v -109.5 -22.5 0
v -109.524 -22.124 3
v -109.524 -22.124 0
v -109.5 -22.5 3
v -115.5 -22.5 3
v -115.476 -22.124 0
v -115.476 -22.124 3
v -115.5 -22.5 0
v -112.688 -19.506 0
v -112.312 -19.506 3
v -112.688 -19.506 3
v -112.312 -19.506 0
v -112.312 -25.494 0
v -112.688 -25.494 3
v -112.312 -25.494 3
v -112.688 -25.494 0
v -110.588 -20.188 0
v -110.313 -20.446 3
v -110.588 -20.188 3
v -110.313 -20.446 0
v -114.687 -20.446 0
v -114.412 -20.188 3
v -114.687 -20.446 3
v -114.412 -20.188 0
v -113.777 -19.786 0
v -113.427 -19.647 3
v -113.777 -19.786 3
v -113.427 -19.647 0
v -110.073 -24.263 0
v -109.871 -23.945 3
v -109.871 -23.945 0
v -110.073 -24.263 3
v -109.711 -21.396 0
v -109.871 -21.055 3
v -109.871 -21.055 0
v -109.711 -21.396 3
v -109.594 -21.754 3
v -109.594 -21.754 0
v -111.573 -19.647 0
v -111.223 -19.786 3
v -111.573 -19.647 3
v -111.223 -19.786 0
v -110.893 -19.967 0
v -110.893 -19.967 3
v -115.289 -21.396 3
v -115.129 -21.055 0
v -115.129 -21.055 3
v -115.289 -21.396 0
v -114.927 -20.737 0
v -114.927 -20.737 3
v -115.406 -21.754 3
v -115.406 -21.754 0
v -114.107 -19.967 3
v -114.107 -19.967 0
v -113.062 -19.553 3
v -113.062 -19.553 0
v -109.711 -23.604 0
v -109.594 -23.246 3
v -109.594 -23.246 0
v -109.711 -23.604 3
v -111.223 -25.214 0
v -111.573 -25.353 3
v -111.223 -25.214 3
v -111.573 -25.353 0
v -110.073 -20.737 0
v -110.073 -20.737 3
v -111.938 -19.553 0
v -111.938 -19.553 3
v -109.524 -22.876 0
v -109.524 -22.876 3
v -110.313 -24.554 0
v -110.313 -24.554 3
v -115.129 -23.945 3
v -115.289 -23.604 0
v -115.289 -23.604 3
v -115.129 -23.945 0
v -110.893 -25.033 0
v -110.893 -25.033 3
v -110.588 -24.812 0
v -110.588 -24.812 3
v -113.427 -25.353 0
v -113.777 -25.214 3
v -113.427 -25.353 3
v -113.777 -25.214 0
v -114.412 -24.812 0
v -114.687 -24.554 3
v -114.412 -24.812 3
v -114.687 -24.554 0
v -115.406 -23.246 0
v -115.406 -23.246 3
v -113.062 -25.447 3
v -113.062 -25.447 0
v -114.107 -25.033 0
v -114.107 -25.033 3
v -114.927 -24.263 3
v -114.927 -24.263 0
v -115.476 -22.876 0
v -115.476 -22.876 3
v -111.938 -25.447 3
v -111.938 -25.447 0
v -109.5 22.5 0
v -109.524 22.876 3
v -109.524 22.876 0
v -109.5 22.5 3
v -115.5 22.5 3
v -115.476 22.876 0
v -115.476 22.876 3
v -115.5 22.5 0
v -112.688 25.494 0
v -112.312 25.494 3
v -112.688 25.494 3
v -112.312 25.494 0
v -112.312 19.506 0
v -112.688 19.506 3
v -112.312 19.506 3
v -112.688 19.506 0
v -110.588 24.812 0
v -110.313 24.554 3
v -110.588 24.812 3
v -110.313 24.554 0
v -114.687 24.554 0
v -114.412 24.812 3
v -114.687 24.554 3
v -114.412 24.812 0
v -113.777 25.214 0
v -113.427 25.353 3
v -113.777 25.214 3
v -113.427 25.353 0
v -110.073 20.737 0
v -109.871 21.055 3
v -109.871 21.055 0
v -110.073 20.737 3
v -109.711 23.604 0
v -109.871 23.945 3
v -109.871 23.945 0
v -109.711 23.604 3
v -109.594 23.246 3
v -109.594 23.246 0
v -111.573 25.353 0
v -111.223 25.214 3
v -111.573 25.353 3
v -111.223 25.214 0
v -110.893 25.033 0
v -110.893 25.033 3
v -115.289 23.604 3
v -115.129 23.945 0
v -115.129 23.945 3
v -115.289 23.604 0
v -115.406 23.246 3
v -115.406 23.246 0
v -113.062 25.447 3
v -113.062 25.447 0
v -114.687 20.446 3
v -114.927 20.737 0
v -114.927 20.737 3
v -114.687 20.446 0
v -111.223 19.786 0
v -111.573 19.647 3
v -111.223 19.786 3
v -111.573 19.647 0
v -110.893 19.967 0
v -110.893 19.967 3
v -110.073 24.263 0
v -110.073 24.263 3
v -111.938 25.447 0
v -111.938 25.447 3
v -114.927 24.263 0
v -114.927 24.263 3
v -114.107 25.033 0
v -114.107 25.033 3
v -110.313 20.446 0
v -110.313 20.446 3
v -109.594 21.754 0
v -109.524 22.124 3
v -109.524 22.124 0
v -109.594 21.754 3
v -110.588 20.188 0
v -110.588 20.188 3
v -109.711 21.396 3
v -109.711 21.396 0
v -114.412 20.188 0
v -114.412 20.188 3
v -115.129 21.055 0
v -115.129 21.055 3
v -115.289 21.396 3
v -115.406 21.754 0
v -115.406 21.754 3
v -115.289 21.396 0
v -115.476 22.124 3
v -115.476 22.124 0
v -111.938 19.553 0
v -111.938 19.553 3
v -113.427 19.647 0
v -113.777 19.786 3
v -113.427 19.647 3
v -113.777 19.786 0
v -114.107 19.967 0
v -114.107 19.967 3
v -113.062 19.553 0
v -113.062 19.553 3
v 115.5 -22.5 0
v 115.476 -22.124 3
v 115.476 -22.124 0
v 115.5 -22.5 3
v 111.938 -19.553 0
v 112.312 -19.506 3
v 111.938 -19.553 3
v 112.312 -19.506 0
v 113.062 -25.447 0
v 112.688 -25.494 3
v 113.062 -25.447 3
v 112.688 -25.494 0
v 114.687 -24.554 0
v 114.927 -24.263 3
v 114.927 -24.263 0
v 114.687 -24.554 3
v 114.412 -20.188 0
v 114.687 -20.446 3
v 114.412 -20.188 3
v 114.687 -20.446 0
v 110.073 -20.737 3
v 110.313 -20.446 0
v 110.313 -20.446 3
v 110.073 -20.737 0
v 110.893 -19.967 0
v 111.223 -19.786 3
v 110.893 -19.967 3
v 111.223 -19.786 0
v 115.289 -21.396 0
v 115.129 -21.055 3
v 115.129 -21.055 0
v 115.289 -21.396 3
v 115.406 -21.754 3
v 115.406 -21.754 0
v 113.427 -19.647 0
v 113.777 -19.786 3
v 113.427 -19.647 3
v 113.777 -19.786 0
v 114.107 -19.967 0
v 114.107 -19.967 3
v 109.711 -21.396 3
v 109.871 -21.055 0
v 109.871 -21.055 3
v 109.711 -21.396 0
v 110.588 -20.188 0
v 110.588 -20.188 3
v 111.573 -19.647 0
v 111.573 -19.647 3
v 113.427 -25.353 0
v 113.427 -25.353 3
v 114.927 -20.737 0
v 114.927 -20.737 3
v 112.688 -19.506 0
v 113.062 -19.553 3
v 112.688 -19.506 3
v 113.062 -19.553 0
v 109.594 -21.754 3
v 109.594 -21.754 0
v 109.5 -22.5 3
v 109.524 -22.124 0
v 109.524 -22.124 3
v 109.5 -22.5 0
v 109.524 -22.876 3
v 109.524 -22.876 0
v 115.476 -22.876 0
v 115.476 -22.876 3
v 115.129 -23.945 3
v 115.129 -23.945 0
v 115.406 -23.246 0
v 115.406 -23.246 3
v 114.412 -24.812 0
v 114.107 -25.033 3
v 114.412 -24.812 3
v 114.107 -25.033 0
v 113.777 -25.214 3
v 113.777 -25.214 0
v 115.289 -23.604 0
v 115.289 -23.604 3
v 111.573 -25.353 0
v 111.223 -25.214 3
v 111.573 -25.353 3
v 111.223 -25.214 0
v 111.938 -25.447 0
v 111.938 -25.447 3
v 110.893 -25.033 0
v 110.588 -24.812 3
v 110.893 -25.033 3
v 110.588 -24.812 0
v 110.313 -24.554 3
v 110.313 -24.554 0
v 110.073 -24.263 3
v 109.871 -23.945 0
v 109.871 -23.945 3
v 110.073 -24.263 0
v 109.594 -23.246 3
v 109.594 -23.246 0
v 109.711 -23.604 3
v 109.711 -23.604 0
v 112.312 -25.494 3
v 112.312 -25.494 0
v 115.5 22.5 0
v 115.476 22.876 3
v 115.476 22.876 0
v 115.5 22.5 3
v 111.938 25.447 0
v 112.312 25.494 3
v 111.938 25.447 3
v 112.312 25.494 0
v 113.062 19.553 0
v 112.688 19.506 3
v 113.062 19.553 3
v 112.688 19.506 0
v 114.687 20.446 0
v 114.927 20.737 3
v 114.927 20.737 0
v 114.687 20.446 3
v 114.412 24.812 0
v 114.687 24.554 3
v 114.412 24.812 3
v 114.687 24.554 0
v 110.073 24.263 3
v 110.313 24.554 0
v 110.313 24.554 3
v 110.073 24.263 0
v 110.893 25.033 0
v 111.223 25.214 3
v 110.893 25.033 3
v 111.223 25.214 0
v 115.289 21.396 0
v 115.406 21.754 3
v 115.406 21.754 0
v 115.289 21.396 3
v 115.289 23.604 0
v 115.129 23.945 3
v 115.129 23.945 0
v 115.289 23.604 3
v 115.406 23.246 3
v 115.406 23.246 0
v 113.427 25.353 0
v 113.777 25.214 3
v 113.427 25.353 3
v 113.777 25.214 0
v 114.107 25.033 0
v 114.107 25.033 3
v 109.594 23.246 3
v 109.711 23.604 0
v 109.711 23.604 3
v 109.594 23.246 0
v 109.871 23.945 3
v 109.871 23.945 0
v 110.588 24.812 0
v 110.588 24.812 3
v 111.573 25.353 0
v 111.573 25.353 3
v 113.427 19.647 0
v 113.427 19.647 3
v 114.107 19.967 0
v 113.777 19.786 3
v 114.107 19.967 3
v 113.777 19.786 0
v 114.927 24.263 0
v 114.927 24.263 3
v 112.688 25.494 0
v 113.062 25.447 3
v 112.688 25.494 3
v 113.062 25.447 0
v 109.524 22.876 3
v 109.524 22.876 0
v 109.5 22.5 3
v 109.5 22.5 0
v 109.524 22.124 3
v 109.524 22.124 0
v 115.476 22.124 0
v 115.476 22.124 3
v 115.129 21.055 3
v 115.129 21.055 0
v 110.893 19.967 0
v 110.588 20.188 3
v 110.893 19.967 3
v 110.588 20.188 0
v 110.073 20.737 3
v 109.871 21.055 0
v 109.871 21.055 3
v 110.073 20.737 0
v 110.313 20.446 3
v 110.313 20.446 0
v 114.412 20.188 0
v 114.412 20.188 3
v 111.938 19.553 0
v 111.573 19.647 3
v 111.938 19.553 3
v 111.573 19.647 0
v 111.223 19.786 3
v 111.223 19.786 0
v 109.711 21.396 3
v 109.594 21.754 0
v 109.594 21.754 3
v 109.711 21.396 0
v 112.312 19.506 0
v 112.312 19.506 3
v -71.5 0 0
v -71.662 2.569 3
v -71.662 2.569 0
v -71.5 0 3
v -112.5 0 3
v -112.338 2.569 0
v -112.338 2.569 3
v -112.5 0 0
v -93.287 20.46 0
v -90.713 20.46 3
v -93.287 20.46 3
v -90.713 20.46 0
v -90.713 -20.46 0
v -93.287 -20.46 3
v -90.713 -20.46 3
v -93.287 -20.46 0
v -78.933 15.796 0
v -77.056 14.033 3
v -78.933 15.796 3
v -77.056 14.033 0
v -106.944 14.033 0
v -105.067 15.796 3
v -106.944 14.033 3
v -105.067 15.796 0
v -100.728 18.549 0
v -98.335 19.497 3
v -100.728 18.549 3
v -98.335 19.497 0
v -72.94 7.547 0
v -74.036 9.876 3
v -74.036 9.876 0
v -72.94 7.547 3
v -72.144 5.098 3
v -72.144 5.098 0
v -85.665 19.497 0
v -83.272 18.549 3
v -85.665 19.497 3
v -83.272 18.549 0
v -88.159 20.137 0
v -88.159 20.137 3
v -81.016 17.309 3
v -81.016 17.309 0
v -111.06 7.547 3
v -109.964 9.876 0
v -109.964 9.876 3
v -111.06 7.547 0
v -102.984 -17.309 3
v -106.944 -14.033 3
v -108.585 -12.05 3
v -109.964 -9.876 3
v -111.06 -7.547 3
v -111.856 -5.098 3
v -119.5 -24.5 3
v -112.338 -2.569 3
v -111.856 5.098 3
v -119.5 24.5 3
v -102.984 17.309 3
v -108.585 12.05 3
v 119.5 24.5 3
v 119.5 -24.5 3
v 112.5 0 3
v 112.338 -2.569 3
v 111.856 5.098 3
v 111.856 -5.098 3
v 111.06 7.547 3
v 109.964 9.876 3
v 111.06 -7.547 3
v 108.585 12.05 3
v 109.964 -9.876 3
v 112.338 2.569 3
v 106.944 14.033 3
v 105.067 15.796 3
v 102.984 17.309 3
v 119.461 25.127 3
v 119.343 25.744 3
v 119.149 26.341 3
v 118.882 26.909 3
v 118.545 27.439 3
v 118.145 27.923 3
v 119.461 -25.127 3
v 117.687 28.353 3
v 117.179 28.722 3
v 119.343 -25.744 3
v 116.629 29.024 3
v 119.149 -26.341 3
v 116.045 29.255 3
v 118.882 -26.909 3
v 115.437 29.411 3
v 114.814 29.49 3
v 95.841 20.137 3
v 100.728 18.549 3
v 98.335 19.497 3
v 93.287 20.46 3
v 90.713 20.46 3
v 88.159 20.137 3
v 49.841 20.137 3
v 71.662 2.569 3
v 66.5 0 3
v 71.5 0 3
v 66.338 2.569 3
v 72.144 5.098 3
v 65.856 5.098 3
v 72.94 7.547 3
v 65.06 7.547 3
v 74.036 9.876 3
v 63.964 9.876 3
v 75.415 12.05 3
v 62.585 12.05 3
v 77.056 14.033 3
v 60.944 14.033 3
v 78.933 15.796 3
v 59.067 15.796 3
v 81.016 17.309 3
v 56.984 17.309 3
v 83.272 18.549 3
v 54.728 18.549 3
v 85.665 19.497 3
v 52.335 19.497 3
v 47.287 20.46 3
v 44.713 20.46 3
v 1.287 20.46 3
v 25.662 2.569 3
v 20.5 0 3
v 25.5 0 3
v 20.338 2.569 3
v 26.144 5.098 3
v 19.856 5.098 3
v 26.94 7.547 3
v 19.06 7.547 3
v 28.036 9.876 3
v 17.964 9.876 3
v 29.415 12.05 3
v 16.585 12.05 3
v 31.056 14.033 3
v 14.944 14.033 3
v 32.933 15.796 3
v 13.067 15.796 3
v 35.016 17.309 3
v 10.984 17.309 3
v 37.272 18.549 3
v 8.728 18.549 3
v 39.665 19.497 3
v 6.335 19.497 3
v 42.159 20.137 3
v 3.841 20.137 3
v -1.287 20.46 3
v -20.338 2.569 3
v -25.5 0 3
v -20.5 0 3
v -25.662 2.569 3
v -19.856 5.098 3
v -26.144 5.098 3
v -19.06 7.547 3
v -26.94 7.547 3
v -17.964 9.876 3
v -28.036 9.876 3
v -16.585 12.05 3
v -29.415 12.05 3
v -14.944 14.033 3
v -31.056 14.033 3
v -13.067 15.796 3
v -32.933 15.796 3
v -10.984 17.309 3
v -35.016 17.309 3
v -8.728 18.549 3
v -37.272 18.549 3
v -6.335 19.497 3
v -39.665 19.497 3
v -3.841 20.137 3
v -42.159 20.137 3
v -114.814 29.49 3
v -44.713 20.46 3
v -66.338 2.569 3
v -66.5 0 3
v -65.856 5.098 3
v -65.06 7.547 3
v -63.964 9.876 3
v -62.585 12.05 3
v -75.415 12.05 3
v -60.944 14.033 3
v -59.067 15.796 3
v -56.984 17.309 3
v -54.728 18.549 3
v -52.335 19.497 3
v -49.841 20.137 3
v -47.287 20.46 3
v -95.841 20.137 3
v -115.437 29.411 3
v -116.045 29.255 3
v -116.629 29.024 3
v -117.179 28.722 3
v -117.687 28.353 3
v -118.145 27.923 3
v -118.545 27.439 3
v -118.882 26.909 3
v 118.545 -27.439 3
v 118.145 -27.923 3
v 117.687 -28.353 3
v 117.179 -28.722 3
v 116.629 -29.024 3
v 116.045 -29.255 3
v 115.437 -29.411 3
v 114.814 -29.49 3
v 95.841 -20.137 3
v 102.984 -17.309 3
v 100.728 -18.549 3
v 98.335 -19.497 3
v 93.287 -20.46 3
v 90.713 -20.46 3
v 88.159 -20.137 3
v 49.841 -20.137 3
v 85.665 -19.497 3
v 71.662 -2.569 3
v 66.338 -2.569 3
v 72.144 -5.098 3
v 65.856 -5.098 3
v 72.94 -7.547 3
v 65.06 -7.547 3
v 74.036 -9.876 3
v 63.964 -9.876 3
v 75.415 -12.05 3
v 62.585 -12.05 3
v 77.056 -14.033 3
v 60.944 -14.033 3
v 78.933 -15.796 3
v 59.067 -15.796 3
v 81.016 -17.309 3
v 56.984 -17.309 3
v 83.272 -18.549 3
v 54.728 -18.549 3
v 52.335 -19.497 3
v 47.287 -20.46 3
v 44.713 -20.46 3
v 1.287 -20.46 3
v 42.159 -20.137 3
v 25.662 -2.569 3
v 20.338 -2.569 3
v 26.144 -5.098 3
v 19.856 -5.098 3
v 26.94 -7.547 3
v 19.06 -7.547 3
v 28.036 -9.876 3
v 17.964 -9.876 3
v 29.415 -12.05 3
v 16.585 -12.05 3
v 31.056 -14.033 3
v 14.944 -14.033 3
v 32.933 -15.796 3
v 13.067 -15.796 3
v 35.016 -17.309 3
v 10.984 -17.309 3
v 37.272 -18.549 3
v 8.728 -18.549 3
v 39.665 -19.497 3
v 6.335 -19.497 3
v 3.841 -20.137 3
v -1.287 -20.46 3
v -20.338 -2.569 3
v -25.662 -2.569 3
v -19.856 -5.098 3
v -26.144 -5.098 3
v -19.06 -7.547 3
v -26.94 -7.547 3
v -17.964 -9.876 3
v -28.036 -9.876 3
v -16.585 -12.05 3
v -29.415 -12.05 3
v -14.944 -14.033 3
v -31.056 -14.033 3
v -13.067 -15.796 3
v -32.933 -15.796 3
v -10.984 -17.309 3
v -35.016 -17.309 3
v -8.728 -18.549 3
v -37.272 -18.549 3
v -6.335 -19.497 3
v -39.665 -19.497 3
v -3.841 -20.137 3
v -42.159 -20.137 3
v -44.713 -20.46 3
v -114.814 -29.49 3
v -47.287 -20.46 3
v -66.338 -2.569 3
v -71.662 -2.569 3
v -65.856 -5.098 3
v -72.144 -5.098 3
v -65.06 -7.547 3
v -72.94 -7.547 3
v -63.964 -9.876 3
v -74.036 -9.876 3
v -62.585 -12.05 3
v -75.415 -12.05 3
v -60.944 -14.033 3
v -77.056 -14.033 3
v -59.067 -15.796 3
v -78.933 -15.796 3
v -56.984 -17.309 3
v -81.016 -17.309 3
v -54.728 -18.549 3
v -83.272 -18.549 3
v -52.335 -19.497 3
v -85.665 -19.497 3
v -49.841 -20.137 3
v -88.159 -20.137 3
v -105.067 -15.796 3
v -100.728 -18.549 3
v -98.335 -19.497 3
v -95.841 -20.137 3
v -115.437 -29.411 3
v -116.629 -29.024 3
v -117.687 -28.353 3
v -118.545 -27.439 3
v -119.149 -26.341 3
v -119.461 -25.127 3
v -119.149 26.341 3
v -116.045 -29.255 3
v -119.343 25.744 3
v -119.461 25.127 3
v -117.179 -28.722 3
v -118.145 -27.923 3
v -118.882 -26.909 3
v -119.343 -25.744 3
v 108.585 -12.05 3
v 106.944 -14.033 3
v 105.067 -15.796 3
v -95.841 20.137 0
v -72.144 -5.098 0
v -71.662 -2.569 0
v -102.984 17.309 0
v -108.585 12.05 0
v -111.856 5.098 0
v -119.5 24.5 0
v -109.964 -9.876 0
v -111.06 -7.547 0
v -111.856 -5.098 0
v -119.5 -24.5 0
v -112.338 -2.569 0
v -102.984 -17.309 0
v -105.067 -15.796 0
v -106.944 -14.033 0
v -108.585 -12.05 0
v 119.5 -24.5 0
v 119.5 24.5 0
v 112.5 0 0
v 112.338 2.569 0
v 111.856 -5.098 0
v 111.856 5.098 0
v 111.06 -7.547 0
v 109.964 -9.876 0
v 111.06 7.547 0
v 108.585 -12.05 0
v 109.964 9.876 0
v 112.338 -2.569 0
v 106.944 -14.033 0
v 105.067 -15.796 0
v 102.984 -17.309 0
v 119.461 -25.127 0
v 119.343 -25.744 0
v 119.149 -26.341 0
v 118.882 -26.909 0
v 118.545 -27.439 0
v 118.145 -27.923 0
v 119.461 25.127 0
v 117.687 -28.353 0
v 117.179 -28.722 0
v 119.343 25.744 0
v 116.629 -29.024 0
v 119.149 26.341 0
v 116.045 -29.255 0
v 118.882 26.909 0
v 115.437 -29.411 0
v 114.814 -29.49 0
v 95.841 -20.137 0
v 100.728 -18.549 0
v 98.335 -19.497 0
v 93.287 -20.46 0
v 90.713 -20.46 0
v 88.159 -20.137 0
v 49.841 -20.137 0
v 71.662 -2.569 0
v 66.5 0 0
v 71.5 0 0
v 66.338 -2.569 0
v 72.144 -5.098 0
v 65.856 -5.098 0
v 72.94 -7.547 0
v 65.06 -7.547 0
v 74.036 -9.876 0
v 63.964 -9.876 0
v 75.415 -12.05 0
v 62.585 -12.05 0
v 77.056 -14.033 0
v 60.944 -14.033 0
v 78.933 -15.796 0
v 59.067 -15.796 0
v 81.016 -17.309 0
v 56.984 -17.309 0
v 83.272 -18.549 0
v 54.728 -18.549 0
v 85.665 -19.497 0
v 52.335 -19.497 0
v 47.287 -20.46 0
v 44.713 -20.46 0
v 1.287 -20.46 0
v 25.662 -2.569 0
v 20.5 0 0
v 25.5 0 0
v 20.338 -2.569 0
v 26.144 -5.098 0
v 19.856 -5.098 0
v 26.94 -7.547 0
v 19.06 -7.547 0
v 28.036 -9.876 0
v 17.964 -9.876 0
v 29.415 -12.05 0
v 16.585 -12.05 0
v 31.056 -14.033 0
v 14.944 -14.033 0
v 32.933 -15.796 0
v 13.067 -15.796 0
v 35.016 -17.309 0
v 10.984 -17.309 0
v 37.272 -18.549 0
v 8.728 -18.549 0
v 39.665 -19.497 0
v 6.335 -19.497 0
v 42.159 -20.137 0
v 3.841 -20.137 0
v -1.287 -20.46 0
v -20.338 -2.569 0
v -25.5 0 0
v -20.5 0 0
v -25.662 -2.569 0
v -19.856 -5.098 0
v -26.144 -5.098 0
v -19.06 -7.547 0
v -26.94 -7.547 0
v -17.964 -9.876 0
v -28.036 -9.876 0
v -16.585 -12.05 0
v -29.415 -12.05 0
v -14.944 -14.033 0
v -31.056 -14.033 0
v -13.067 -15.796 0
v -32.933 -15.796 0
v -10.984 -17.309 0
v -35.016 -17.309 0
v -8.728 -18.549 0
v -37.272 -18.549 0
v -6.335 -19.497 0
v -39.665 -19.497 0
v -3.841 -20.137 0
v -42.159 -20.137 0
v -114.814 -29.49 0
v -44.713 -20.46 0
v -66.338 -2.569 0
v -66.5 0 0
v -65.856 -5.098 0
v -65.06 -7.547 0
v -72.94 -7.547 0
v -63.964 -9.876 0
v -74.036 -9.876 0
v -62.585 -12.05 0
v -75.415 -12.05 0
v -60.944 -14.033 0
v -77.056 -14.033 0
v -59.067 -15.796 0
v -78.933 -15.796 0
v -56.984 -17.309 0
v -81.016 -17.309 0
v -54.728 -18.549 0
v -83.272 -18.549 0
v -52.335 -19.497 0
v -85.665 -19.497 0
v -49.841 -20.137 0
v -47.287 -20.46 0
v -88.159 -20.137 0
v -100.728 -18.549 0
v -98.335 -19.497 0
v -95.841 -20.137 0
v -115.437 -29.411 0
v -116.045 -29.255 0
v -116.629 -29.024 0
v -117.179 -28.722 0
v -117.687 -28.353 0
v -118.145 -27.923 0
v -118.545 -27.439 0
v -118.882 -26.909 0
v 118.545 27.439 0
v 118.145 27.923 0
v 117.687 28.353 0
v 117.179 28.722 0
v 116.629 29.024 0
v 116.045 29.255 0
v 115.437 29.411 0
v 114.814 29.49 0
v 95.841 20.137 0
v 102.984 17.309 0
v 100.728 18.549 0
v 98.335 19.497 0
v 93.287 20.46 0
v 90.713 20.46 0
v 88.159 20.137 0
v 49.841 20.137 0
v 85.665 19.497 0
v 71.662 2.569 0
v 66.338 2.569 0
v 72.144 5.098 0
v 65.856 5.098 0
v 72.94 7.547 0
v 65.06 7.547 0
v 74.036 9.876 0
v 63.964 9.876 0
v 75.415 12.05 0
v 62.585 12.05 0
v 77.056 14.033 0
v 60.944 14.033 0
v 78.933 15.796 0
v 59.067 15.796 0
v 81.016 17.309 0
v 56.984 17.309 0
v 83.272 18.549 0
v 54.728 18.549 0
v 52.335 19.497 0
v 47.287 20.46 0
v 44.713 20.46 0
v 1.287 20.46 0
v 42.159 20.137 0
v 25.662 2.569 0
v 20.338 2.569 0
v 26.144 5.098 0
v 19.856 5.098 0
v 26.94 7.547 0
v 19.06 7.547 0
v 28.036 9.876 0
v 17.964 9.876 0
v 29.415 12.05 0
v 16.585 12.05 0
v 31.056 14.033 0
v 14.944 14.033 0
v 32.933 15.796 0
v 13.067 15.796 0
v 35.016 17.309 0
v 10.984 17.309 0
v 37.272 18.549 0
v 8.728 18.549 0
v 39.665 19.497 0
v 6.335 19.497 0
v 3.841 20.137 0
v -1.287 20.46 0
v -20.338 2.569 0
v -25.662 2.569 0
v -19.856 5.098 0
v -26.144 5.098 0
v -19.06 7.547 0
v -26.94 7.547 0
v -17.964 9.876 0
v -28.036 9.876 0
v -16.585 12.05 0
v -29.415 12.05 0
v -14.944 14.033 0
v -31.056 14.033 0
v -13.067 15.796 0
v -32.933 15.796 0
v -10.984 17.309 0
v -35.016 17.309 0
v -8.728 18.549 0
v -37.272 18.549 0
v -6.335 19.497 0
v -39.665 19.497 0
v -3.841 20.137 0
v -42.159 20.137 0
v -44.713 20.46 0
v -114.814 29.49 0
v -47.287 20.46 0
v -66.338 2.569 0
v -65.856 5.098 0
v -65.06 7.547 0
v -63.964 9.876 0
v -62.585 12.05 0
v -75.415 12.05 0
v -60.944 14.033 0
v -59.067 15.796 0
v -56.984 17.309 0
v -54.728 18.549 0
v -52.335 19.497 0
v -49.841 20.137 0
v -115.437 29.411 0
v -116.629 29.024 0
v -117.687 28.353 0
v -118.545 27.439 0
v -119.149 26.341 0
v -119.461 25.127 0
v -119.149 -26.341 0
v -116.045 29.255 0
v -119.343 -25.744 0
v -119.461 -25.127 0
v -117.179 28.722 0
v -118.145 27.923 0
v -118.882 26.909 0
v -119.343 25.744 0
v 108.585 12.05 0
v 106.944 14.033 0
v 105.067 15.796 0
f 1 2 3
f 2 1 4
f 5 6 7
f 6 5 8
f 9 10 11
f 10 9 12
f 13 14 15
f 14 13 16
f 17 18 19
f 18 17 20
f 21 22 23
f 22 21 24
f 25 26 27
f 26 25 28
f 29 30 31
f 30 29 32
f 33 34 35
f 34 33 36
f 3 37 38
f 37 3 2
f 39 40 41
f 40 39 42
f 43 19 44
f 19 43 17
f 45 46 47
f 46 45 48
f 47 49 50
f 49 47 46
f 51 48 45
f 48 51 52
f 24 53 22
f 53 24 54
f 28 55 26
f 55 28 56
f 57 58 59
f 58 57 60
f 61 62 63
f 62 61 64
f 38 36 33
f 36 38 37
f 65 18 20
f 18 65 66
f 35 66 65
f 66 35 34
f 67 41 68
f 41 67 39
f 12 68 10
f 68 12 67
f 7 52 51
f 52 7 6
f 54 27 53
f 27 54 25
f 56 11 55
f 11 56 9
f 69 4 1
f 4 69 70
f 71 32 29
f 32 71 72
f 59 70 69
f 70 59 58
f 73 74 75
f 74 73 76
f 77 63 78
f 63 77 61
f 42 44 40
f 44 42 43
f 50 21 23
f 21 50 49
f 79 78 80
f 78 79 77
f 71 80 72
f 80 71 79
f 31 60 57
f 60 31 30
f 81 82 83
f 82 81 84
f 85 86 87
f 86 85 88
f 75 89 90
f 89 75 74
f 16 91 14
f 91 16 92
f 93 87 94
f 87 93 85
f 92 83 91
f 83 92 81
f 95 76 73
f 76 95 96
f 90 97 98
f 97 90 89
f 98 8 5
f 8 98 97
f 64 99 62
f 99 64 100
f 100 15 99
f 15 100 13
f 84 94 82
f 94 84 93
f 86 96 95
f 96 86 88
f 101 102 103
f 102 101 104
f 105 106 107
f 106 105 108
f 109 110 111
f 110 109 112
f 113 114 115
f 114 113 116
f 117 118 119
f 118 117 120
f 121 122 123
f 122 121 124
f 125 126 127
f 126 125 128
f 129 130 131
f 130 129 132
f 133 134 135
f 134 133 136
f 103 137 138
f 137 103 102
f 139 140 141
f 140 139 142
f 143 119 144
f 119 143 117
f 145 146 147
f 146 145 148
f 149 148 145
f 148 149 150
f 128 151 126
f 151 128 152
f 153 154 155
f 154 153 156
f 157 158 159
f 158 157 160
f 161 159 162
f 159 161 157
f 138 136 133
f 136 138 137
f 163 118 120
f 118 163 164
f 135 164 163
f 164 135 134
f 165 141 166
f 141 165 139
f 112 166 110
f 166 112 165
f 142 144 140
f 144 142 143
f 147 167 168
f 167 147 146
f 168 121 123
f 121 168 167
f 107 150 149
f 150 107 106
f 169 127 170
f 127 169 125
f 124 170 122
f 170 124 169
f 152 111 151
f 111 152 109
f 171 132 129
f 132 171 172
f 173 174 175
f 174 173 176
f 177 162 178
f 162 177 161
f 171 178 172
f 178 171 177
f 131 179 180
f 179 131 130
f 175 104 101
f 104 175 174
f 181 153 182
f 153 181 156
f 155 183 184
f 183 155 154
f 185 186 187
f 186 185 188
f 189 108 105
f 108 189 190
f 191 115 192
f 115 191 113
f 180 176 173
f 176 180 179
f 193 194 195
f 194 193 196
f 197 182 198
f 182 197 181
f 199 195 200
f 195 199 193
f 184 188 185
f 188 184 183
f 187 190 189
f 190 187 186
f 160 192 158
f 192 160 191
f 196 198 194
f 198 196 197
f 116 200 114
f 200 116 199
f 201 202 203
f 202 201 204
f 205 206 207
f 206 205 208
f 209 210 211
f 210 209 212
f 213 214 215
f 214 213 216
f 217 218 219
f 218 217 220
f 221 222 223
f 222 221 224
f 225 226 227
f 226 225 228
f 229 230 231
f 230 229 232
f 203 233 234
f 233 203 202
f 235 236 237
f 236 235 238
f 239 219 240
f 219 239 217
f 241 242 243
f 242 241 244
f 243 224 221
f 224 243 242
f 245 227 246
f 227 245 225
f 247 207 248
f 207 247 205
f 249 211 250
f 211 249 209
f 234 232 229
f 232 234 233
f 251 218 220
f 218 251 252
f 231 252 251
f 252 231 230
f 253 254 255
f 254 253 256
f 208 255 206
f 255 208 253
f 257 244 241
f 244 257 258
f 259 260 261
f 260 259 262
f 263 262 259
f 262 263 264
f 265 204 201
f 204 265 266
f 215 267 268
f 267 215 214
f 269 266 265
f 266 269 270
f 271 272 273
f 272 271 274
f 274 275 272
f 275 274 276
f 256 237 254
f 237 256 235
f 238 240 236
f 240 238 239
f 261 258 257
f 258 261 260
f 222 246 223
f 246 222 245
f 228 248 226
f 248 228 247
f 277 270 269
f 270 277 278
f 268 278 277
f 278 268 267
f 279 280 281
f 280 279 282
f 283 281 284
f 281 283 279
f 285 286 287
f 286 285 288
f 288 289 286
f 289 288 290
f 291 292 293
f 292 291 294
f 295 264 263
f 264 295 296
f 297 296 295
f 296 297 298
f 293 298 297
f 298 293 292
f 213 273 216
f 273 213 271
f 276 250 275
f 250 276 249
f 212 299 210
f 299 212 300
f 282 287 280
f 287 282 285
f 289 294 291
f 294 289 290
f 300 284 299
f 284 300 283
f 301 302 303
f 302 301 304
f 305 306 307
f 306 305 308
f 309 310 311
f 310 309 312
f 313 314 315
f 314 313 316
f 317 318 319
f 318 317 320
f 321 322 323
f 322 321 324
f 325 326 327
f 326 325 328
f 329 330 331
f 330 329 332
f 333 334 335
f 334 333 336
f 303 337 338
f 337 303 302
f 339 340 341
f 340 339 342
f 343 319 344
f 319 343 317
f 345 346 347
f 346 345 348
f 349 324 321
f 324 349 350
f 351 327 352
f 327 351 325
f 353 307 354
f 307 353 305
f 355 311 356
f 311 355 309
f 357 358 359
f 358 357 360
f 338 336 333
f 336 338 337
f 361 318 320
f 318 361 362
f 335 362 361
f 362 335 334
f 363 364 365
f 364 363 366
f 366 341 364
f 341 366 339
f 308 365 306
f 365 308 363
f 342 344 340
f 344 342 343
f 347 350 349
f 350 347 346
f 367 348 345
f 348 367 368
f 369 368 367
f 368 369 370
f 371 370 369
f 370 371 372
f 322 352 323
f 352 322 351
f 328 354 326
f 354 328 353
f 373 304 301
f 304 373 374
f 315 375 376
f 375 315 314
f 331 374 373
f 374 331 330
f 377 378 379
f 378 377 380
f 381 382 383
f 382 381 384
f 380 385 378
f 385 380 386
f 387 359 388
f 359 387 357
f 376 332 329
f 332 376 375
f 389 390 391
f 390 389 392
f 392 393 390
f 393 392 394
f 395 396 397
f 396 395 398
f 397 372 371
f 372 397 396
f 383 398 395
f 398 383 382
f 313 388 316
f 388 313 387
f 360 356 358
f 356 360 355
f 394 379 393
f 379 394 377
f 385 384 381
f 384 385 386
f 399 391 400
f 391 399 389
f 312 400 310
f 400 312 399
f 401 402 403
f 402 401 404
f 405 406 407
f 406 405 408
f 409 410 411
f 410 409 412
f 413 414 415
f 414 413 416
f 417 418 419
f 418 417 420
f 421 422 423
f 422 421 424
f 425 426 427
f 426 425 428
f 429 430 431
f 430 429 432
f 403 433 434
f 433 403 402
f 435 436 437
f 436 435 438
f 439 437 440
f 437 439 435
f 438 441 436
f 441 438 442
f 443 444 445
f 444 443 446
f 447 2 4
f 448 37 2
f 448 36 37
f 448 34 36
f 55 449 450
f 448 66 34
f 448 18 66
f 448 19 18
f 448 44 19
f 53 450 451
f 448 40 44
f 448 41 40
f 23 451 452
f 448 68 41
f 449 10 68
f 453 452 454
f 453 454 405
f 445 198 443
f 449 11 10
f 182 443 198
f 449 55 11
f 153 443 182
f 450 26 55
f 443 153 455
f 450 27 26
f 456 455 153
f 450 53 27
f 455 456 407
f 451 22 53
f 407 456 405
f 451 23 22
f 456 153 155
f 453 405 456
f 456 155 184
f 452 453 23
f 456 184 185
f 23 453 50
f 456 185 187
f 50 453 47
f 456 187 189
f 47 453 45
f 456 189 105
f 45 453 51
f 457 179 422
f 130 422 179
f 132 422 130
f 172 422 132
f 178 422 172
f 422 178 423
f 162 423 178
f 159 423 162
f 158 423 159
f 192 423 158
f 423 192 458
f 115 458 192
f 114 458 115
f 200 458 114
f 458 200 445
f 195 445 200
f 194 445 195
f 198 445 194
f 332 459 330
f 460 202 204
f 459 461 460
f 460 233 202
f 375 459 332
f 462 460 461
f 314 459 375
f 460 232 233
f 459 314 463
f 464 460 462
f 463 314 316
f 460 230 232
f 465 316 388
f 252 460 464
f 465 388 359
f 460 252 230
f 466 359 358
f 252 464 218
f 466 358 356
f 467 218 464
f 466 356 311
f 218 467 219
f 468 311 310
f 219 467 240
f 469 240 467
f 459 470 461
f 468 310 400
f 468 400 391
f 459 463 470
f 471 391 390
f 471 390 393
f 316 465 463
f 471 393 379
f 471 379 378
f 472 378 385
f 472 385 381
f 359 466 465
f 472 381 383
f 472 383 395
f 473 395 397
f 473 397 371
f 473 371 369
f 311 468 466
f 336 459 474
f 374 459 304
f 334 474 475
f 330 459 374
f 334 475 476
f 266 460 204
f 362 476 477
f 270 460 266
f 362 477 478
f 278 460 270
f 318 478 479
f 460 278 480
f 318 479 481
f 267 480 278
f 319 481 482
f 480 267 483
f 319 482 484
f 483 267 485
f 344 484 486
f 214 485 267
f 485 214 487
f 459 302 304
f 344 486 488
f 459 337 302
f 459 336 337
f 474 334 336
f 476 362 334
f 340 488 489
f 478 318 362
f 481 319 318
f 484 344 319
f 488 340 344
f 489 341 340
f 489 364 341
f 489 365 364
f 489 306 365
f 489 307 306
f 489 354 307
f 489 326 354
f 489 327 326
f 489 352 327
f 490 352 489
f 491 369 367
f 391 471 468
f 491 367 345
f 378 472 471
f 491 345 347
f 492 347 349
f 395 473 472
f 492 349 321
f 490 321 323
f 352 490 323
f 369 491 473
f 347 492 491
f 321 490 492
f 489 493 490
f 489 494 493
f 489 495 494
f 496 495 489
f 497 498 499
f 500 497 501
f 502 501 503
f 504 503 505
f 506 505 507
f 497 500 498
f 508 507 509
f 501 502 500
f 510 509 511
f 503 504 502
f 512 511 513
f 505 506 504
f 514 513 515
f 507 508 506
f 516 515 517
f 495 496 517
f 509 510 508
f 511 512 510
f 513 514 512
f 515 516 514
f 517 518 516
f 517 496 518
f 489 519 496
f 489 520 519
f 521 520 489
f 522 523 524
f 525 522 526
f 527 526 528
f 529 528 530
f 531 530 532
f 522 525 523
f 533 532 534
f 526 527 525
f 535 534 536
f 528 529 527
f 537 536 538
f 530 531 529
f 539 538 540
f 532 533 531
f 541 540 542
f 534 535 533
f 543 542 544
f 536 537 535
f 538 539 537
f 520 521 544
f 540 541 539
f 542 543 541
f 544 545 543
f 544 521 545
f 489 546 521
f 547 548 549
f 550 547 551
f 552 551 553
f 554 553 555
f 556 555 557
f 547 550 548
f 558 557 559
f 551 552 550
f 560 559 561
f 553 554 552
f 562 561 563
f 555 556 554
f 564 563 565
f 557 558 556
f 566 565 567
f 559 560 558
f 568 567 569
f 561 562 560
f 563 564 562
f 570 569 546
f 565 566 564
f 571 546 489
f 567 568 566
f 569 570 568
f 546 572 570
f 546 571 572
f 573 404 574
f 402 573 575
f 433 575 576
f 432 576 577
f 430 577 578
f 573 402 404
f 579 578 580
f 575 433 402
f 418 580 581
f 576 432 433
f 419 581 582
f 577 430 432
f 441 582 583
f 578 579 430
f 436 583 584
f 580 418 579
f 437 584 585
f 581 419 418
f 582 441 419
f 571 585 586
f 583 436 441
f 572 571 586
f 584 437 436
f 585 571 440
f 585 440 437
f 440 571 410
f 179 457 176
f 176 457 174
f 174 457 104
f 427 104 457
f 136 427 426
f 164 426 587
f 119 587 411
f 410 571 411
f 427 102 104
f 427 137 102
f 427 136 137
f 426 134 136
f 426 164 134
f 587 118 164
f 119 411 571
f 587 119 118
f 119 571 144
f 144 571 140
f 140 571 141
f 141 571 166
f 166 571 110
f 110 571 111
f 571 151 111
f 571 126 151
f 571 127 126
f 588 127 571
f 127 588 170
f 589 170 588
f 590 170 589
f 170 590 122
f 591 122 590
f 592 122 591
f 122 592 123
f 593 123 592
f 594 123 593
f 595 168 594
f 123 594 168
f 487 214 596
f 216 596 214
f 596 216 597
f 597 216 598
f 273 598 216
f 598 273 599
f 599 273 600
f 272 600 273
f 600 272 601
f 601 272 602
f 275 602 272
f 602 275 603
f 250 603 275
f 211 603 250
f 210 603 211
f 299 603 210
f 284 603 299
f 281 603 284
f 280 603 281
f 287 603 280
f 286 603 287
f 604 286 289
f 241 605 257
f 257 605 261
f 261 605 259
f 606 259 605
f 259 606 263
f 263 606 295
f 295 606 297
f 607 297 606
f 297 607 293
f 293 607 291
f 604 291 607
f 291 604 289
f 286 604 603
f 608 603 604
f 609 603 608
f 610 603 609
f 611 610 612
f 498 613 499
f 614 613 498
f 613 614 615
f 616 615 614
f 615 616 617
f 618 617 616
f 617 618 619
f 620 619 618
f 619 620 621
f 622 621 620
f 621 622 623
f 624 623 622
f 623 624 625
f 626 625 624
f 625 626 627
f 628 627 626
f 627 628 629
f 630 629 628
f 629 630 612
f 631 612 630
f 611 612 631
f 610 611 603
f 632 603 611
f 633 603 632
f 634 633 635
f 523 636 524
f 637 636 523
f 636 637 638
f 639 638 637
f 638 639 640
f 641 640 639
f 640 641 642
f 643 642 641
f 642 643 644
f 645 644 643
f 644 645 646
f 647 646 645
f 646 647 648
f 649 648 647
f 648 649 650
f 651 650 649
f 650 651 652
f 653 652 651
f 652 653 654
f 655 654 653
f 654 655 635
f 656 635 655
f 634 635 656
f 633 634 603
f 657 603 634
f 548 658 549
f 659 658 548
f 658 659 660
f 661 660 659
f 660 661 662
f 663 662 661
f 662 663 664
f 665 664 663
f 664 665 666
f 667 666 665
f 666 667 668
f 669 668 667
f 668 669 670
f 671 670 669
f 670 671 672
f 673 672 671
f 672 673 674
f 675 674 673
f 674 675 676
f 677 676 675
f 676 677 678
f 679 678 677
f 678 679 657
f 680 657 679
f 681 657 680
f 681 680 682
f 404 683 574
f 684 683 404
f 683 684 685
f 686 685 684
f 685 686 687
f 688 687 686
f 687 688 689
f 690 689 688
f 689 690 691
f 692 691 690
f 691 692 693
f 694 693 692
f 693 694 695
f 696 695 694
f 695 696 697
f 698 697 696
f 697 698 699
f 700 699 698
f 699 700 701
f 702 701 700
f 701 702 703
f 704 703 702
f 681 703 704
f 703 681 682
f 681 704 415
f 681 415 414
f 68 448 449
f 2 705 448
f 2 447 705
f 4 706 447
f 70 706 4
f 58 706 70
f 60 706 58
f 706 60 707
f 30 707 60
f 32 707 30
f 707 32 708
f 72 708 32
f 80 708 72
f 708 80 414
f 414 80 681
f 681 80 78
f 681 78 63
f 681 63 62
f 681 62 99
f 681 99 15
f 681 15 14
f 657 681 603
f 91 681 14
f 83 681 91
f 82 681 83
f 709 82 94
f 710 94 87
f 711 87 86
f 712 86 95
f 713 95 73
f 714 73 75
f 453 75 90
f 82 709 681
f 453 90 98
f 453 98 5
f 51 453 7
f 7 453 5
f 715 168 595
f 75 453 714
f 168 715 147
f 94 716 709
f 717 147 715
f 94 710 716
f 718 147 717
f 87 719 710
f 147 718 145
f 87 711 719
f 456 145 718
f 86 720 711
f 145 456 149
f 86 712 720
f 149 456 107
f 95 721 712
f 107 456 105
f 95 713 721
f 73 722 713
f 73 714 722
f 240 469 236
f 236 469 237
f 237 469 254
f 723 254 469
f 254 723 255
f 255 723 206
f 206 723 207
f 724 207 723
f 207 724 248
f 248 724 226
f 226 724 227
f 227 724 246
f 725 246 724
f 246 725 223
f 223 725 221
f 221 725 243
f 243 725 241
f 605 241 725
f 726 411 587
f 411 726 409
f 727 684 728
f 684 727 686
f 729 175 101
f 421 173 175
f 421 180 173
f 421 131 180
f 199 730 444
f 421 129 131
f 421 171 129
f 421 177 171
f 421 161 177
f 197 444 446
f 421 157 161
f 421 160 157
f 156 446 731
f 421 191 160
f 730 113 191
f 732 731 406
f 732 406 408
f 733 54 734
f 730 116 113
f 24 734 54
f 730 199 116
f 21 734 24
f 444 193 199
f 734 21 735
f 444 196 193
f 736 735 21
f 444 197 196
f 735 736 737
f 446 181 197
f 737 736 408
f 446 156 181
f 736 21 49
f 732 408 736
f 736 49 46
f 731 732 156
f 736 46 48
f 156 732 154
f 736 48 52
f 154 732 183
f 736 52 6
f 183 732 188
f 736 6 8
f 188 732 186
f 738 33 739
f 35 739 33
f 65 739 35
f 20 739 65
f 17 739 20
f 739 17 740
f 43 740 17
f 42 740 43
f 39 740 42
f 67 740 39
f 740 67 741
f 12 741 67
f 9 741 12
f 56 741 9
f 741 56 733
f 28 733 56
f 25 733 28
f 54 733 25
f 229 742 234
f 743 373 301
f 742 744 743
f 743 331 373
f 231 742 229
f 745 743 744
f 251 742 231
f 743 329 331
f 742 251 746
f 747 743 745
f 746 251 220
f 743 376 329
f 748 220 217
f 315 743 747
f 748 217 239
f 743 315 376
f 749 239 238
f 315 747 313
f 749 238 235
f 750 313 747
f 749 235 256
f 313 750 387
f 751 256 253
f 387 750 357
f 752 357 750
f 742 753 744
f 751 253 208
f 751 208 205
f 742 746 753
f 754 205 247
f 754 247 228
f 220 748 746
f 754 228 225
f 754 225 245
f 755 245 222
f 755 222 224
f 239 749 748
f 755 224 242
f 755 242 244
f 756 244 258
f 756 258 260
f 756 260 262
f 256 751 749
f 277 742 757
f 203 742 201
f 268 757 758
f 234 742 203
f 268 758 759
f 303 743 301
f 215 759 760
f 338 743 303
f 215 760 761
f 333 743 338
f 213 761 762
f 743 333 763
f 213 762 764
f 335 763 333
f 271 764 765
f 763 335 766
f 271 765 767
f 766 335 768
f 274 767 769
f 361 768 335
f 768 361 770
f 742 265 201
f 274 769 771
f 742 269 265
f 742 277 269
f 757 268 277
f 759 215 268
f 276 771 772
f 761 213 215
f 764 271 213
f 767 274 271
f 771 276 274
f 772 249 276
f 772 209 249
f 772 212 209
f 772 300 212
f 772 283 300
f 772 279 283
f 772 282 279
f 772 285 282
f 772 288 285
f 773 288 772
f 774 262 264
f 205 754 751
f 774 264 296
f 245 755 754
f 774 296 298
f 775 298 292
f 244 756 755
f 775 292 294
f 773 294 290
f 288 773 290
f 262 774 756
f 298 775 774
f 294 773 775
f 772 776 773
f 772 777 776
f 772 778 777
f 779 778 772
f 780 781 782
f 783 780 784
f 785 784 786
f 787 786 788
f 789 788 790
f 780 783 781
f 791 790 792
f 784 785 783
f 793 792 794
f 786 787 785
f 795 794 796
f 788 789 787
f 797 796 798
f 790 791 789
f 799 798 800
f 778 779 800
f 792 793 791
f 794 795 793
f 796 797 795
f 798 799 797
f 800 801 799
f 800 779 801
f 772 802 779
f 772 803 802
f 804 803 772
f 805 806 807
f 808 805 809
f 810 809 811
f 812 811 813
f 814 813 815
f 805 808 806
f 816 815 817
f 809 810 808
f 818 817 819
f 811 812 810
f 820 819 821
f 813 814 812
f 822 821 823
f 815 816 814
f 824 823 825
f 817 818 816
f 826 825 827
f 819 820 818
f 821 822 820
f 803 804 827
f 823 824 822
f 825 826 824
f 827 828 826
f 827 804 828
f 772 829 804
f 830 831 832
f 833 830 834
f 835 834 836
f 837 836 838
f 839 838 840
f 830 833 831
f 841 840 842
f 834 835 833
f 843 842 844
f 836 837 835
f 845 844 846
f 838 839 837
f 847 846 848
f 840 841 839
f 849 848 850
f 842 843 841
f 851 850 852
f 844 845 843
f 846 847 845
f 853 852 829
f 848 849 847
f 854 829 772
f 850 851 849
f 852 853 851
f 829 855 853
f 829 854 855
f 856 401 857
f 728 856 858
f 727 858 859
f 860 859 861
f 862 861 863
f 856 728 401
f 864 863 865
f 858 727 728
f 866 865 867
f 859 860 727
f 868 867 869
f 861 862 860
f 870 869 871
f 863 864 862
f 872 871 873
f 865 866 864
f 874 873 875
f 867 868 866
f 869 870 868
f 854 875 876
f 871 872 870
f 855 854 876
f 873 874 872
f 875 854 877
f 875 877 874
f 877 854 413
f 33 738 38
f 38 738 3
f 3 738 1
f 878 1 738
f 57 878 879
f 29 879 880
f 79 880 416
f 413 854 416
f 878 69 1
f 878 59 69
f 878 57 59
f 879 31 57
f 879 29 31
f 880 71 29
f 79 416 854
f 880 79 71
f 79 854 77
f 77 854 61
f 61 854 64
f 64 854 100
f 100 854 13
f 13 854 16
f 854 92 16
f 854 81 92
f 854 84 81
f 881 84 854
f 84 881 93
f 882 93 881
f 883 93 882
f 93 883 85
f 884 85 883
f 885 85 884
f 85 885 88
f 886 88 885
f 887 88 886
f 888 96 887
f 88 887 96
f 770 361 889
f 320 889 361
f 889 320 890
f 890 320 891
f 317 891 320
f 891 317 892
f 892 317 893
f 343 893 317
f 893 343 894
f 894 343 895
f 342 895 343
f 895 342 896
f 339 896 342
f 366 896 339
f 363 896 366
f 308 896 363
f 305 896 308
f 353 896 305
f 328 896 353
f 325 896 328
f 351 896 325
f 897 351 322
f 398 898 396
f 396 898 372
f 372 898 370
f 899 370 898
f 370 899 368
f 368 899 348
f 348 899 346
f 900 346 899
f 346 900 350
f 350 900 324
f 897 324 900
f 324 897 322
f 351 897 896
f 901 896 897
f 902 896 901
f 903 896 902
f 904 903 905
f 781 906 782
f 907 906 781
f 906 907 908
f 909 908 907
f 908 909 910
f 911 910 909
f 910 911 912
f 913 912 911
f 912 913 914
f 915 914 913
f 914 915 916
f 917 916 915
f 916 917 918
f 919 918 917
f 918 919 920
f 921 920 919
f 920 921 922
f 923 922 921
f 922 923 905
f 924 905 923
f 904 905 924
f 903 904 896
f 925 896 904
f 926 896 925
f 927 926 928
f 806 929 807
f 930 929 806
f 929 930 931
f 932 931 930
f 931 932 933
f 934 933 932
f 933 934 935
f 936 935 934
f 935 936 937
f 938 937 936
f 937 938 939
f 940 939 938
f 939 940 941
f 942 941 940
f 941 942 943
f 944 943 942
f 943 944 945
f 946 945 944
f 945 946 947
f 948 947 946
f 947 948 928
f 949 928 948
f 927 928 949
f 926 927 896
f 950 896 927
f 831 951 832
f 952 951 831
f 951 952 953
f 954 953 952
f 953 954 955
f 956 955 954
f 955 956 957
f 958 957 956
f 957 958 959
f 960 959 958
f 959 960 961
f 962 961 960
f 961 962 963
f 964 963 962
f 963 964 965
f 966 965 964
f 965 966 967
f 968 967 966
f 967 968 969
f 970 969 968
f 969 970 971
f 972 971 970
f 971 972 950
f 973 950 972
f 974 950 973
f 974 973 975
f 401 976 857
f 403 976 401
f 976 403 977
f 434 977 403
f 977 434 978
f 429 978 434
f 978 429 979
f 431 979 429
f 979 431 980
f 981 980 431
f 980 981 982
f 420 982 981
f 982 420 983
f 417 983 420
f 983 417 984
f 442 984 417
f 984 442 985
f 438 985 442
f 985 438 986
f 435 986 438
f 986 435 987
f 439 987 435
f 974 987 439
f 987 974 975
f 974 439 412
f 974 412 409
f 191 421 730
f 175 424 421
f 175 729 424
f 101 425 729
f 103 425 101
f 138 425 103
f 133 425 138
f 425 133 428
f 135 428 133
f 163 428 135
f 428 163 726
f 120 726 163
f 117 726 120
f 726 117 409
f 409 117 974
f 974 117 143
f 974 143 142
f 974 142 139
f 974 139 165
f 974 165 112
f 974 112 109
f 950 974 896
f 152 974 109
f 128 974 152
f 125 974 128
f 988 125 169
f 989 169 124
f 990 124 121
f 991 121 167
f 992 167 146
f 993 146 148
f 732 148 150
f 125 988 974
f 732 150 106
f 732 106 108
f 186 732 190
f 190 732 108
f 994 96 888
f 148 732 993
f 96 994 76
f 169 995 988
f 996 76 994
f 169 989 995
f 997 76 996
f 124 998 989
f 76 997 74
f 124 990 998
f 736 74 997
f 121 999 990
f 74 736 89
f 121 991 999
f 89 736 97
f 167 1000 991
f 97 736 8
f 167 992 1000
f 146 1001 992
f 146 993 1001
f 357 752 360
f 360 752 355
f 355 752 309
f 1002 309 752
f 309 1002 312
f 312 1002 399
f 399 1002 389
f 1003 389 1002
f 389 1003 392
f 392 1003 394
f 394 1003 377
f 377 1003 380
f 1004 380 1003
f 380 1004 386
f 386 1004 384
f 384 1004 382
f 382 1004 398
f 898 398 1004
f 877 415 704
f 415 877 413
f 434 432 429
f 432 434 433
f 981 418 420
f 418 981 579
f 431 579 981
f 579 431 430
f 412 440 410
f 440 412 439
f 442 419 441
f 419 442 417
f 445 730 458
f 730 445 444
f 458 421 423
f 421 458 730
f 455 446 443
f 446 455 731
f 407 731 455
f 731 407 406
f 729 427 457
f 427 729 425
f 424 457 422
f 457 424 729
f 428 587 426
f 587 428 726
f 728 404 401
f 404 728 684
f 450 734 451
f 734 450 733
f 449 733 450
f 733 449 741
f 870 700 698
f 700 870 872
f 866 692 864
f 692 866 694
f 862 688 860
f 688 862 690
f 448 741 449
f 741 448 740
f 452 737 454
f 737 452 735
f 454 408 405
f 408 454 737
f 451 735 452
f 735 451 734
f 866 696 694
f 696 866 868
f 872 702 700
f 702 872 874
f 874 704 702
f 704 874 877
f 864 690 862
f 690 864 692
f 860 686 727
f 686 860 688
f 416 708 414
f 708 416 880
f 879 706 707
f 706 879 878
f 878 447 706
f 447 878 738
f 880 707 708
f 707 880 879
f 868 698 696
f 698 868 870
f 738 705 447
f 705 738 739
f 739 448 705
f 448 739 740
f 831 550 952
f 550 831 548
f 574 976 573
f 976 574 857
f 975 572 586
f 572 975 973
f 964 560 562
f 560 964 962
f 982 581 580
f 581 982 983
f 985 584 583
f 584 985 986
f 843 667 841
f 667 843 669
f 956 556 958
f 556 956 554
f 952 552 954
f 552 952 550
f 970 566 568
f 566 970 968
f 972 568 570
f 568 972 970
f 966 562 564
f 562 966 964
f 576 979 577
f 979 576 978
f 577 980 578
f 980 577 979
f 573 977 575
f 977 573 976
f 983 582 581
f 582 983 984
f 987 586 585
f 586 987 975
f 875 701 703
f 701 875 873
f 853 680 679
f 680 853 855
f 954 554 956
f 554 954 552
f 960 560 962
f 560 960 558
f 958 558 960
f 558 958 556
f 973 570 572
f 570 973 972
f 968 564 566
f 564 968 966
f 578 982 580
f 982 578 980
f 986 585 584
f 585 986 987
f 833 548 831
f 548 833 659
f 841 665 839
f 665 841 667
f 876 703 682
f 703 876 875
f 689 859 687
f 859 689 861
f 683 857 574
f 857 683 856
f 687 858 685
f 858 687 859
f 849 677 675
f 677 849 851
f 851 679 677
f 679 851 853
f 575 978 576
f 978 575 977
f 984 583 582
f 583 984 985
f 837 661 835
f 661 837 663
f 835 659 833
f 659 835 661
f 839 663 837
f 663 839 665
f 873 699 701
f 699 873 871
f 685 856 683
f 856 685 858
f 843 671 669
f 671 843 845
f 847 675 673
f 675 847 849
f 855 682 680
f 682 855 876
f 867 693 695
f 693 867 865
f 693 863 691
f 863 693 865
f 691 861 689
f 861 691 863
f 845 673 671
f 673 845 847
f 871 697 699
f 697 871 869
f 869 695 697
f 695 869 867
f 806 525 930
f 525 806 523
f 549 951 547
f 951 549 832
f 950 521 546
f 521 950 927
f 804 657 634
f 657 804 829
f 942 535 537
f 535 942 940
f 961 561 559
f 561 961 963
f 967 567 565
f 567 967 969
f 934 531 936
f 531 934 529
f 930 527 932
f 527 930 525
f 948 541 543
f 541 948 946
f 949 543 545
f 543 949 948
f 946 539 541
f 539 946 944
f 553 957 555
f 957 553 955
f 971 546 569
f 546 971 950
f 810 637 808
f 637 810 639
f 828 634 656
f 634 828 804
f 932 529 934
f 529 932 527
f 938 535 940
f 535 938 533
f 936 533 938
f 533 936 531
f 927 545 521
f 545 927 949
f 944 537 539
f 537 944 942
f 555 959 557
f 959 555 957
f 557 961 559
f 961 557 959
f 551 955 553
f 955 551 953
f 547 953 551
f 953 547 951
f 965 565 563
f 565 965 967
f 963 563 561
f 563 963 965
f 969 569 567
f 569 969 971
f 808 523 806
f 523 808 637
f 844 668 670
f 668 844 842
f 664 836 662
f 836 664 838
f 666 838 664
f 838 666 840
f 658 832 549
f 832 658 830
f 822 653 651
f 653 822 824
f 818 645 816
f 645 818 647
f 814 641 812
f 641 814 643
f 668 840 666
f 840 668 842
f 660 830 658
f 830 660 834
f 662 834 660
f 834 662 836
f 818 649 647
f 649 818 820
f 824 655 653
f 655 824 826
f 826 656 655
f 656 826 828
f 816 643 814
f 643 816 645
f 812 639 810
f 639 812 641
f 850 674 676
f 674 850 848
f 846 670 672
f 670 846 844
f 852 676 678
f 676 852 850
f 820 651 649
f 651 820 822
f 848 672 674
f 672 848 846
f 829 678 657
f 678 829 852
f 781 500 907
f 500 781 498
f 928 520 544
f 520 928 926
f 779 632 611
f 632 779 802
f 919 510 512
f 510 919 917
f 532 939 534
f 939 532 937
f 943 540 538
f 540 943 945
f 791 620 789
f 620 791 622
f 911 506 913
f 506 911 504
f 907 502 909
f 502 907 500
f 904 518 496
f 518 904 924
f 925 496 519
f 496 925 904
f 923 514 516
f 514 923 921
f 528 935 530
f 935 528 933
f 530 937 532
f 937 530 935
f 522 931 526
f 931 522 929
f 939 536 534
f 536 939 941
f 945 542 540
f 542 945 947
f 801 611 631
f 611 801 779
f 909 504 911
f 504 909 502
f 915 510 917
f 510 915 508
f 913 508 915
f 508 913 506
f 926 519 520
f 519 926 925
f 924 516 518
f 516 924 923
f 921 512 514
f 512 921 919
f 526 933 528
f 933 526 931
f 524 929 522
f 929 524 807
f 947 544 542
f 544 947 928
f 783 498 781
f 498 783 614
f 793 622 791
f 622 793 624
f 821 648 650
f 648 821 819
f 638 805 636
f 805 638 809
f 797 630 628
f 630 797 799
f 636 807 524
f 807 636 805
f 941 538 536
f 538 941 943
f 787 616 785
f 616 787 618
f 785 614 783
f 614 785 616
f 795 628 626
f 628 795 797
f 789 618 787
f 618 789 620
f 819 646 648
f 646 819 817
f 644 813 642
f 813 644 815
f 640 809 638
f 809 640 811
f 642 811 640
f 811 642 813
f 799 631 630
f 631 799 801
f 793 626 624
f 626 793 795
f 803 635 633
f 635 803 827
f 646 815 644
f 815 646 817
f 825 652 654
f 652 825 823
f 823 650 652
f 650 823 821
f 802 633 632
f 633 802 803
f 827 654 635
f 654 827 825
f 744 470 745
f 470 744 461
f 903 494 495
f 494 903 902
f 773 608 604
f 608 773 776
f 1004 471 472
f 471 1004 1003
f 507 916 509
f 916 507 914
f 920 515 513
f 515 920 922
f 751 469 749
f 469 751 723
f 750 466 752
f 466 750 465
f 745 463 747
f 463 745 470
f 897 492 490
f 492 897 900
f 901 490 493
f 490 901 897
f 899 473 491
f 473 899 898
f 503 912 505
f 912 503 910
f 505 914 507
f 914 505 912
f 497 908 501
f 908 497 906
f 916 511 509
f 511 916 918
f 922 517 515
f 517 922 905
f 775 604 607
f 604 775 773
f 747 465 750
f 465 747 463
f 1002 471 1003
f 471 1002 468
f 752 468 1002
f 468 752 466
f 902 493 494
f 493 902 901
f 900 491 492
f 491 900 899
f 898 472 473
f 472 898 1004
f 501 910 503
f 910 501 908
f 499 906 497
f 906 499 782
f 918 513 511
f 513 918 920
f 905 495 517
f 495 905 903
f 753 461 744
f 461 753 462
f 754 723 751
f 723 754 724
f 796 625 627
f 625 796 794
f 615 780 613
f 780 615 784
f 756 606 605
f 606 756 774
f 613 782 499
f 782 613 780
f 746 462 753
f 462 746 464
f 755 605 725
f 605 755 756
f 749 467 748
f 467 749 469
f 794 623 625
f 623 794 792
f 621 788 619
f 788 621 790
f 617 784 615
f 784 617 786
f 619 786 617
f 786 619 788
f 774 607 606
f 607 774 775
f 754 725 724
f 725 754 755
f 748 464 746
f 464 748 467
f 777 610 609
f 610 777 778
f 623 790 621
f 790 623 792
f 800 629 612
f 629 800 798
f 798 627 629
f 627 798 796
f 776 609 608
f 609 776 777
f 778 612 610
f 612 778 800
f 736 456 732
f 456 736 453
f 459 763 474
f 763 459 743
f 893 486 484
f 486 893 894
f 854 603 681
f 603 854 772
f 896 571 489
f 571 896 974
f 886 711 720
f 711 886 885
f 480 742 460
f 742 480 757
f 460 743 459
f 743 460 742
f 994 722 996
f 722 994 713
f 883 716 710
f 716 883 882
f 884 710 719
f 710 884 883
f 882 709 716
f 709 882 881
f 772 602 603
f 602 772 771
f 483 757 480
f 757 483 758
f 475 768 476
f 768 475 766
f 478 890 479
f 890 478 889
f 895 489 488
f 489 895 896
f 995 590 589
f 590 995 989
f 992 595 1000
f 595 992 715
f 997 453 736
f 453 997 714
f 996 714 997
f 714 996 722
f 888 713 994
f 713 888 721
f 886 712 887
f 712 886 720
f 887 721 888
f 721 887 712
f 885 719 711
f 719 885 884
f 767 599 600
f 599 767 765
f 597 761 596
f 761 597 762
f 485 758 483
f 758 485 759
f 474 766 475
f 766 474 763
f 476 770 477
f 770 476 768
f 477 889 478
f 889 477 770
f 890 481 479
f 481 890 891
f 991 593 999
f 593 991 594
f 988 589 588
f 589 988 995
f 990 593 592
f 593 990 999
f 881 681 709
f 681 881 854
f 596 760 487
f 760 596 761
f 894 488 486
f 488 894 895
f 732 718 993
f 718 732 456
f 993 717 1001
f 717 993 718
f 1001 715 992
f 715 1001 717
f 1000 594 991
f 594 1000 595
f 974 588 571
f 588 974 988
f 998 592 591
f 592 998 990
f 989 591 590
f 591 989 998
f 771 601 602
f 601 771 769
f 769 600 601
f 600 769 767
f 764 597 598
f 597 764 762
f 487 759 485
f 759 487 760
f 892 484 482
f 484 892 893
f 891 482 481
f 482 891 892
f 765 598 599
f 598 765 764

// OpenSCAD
$fn = 50;


difference() {
	union() {
		hull() {
			translate(v = [-114.5000000000, 24.5000000000, 0]) {
				cylinder(h = 3, r = 5);
			}
			translate(v = [114.5000000000, 24.5000000000, 0]) {
				cylinder(h = 3, r = 5);
			}
			translate(v = [-114.5000000000, -24.5000000000, 0]) {
				cylinder(h = 3, r = 5);
			}
			translate(v = [114.5000000000, -24.5000000000, 0]) {
				cylinder(h = 3, r = 5);
			}
		}
	}
	union() {
		#translate(v = [-112.5000000000, -22.5000000000, -100.0000000000]) {
			cylinder(h = 200, r = 3.0000000000);
		}
		#translate(v = [-112.5000000000, 22.5000000000, -100.0000000000]) {
			cylinder(h = 200, r = 3.0000000000);
		}
		#translate(v = [112.5000000000, -22.5000000000, -100.0000000000]) {
			cylinder(h = 200, r = 3.0000000000);
		}
		#translate(v = [112.5000000000, 22.5000000000, -100.0000000000]) {
			cylinder(h = 200, r = 3.0000000000);
		}
		#translate(v = [-92.0000000000, 0, 0]) {
			cylinder(h = 3, r = 20.5000000000);
		}
		#translate(v = [-46.0000000000, 0, 0]) {
			cylinder(h = 3, r = 20.5000000000);
		}
		#cylinder(h = 3, r = 20.5000000000);
		#translate(v = [46.0000000000, 0, 0]) {
			cylinder(h = 3, r = 20.5000000000);
		}
		#translate(v = [92.0000000000, 0, 0]) {
			cylinder(h = 3, r = 20.5000000000);
		}
	}
}
